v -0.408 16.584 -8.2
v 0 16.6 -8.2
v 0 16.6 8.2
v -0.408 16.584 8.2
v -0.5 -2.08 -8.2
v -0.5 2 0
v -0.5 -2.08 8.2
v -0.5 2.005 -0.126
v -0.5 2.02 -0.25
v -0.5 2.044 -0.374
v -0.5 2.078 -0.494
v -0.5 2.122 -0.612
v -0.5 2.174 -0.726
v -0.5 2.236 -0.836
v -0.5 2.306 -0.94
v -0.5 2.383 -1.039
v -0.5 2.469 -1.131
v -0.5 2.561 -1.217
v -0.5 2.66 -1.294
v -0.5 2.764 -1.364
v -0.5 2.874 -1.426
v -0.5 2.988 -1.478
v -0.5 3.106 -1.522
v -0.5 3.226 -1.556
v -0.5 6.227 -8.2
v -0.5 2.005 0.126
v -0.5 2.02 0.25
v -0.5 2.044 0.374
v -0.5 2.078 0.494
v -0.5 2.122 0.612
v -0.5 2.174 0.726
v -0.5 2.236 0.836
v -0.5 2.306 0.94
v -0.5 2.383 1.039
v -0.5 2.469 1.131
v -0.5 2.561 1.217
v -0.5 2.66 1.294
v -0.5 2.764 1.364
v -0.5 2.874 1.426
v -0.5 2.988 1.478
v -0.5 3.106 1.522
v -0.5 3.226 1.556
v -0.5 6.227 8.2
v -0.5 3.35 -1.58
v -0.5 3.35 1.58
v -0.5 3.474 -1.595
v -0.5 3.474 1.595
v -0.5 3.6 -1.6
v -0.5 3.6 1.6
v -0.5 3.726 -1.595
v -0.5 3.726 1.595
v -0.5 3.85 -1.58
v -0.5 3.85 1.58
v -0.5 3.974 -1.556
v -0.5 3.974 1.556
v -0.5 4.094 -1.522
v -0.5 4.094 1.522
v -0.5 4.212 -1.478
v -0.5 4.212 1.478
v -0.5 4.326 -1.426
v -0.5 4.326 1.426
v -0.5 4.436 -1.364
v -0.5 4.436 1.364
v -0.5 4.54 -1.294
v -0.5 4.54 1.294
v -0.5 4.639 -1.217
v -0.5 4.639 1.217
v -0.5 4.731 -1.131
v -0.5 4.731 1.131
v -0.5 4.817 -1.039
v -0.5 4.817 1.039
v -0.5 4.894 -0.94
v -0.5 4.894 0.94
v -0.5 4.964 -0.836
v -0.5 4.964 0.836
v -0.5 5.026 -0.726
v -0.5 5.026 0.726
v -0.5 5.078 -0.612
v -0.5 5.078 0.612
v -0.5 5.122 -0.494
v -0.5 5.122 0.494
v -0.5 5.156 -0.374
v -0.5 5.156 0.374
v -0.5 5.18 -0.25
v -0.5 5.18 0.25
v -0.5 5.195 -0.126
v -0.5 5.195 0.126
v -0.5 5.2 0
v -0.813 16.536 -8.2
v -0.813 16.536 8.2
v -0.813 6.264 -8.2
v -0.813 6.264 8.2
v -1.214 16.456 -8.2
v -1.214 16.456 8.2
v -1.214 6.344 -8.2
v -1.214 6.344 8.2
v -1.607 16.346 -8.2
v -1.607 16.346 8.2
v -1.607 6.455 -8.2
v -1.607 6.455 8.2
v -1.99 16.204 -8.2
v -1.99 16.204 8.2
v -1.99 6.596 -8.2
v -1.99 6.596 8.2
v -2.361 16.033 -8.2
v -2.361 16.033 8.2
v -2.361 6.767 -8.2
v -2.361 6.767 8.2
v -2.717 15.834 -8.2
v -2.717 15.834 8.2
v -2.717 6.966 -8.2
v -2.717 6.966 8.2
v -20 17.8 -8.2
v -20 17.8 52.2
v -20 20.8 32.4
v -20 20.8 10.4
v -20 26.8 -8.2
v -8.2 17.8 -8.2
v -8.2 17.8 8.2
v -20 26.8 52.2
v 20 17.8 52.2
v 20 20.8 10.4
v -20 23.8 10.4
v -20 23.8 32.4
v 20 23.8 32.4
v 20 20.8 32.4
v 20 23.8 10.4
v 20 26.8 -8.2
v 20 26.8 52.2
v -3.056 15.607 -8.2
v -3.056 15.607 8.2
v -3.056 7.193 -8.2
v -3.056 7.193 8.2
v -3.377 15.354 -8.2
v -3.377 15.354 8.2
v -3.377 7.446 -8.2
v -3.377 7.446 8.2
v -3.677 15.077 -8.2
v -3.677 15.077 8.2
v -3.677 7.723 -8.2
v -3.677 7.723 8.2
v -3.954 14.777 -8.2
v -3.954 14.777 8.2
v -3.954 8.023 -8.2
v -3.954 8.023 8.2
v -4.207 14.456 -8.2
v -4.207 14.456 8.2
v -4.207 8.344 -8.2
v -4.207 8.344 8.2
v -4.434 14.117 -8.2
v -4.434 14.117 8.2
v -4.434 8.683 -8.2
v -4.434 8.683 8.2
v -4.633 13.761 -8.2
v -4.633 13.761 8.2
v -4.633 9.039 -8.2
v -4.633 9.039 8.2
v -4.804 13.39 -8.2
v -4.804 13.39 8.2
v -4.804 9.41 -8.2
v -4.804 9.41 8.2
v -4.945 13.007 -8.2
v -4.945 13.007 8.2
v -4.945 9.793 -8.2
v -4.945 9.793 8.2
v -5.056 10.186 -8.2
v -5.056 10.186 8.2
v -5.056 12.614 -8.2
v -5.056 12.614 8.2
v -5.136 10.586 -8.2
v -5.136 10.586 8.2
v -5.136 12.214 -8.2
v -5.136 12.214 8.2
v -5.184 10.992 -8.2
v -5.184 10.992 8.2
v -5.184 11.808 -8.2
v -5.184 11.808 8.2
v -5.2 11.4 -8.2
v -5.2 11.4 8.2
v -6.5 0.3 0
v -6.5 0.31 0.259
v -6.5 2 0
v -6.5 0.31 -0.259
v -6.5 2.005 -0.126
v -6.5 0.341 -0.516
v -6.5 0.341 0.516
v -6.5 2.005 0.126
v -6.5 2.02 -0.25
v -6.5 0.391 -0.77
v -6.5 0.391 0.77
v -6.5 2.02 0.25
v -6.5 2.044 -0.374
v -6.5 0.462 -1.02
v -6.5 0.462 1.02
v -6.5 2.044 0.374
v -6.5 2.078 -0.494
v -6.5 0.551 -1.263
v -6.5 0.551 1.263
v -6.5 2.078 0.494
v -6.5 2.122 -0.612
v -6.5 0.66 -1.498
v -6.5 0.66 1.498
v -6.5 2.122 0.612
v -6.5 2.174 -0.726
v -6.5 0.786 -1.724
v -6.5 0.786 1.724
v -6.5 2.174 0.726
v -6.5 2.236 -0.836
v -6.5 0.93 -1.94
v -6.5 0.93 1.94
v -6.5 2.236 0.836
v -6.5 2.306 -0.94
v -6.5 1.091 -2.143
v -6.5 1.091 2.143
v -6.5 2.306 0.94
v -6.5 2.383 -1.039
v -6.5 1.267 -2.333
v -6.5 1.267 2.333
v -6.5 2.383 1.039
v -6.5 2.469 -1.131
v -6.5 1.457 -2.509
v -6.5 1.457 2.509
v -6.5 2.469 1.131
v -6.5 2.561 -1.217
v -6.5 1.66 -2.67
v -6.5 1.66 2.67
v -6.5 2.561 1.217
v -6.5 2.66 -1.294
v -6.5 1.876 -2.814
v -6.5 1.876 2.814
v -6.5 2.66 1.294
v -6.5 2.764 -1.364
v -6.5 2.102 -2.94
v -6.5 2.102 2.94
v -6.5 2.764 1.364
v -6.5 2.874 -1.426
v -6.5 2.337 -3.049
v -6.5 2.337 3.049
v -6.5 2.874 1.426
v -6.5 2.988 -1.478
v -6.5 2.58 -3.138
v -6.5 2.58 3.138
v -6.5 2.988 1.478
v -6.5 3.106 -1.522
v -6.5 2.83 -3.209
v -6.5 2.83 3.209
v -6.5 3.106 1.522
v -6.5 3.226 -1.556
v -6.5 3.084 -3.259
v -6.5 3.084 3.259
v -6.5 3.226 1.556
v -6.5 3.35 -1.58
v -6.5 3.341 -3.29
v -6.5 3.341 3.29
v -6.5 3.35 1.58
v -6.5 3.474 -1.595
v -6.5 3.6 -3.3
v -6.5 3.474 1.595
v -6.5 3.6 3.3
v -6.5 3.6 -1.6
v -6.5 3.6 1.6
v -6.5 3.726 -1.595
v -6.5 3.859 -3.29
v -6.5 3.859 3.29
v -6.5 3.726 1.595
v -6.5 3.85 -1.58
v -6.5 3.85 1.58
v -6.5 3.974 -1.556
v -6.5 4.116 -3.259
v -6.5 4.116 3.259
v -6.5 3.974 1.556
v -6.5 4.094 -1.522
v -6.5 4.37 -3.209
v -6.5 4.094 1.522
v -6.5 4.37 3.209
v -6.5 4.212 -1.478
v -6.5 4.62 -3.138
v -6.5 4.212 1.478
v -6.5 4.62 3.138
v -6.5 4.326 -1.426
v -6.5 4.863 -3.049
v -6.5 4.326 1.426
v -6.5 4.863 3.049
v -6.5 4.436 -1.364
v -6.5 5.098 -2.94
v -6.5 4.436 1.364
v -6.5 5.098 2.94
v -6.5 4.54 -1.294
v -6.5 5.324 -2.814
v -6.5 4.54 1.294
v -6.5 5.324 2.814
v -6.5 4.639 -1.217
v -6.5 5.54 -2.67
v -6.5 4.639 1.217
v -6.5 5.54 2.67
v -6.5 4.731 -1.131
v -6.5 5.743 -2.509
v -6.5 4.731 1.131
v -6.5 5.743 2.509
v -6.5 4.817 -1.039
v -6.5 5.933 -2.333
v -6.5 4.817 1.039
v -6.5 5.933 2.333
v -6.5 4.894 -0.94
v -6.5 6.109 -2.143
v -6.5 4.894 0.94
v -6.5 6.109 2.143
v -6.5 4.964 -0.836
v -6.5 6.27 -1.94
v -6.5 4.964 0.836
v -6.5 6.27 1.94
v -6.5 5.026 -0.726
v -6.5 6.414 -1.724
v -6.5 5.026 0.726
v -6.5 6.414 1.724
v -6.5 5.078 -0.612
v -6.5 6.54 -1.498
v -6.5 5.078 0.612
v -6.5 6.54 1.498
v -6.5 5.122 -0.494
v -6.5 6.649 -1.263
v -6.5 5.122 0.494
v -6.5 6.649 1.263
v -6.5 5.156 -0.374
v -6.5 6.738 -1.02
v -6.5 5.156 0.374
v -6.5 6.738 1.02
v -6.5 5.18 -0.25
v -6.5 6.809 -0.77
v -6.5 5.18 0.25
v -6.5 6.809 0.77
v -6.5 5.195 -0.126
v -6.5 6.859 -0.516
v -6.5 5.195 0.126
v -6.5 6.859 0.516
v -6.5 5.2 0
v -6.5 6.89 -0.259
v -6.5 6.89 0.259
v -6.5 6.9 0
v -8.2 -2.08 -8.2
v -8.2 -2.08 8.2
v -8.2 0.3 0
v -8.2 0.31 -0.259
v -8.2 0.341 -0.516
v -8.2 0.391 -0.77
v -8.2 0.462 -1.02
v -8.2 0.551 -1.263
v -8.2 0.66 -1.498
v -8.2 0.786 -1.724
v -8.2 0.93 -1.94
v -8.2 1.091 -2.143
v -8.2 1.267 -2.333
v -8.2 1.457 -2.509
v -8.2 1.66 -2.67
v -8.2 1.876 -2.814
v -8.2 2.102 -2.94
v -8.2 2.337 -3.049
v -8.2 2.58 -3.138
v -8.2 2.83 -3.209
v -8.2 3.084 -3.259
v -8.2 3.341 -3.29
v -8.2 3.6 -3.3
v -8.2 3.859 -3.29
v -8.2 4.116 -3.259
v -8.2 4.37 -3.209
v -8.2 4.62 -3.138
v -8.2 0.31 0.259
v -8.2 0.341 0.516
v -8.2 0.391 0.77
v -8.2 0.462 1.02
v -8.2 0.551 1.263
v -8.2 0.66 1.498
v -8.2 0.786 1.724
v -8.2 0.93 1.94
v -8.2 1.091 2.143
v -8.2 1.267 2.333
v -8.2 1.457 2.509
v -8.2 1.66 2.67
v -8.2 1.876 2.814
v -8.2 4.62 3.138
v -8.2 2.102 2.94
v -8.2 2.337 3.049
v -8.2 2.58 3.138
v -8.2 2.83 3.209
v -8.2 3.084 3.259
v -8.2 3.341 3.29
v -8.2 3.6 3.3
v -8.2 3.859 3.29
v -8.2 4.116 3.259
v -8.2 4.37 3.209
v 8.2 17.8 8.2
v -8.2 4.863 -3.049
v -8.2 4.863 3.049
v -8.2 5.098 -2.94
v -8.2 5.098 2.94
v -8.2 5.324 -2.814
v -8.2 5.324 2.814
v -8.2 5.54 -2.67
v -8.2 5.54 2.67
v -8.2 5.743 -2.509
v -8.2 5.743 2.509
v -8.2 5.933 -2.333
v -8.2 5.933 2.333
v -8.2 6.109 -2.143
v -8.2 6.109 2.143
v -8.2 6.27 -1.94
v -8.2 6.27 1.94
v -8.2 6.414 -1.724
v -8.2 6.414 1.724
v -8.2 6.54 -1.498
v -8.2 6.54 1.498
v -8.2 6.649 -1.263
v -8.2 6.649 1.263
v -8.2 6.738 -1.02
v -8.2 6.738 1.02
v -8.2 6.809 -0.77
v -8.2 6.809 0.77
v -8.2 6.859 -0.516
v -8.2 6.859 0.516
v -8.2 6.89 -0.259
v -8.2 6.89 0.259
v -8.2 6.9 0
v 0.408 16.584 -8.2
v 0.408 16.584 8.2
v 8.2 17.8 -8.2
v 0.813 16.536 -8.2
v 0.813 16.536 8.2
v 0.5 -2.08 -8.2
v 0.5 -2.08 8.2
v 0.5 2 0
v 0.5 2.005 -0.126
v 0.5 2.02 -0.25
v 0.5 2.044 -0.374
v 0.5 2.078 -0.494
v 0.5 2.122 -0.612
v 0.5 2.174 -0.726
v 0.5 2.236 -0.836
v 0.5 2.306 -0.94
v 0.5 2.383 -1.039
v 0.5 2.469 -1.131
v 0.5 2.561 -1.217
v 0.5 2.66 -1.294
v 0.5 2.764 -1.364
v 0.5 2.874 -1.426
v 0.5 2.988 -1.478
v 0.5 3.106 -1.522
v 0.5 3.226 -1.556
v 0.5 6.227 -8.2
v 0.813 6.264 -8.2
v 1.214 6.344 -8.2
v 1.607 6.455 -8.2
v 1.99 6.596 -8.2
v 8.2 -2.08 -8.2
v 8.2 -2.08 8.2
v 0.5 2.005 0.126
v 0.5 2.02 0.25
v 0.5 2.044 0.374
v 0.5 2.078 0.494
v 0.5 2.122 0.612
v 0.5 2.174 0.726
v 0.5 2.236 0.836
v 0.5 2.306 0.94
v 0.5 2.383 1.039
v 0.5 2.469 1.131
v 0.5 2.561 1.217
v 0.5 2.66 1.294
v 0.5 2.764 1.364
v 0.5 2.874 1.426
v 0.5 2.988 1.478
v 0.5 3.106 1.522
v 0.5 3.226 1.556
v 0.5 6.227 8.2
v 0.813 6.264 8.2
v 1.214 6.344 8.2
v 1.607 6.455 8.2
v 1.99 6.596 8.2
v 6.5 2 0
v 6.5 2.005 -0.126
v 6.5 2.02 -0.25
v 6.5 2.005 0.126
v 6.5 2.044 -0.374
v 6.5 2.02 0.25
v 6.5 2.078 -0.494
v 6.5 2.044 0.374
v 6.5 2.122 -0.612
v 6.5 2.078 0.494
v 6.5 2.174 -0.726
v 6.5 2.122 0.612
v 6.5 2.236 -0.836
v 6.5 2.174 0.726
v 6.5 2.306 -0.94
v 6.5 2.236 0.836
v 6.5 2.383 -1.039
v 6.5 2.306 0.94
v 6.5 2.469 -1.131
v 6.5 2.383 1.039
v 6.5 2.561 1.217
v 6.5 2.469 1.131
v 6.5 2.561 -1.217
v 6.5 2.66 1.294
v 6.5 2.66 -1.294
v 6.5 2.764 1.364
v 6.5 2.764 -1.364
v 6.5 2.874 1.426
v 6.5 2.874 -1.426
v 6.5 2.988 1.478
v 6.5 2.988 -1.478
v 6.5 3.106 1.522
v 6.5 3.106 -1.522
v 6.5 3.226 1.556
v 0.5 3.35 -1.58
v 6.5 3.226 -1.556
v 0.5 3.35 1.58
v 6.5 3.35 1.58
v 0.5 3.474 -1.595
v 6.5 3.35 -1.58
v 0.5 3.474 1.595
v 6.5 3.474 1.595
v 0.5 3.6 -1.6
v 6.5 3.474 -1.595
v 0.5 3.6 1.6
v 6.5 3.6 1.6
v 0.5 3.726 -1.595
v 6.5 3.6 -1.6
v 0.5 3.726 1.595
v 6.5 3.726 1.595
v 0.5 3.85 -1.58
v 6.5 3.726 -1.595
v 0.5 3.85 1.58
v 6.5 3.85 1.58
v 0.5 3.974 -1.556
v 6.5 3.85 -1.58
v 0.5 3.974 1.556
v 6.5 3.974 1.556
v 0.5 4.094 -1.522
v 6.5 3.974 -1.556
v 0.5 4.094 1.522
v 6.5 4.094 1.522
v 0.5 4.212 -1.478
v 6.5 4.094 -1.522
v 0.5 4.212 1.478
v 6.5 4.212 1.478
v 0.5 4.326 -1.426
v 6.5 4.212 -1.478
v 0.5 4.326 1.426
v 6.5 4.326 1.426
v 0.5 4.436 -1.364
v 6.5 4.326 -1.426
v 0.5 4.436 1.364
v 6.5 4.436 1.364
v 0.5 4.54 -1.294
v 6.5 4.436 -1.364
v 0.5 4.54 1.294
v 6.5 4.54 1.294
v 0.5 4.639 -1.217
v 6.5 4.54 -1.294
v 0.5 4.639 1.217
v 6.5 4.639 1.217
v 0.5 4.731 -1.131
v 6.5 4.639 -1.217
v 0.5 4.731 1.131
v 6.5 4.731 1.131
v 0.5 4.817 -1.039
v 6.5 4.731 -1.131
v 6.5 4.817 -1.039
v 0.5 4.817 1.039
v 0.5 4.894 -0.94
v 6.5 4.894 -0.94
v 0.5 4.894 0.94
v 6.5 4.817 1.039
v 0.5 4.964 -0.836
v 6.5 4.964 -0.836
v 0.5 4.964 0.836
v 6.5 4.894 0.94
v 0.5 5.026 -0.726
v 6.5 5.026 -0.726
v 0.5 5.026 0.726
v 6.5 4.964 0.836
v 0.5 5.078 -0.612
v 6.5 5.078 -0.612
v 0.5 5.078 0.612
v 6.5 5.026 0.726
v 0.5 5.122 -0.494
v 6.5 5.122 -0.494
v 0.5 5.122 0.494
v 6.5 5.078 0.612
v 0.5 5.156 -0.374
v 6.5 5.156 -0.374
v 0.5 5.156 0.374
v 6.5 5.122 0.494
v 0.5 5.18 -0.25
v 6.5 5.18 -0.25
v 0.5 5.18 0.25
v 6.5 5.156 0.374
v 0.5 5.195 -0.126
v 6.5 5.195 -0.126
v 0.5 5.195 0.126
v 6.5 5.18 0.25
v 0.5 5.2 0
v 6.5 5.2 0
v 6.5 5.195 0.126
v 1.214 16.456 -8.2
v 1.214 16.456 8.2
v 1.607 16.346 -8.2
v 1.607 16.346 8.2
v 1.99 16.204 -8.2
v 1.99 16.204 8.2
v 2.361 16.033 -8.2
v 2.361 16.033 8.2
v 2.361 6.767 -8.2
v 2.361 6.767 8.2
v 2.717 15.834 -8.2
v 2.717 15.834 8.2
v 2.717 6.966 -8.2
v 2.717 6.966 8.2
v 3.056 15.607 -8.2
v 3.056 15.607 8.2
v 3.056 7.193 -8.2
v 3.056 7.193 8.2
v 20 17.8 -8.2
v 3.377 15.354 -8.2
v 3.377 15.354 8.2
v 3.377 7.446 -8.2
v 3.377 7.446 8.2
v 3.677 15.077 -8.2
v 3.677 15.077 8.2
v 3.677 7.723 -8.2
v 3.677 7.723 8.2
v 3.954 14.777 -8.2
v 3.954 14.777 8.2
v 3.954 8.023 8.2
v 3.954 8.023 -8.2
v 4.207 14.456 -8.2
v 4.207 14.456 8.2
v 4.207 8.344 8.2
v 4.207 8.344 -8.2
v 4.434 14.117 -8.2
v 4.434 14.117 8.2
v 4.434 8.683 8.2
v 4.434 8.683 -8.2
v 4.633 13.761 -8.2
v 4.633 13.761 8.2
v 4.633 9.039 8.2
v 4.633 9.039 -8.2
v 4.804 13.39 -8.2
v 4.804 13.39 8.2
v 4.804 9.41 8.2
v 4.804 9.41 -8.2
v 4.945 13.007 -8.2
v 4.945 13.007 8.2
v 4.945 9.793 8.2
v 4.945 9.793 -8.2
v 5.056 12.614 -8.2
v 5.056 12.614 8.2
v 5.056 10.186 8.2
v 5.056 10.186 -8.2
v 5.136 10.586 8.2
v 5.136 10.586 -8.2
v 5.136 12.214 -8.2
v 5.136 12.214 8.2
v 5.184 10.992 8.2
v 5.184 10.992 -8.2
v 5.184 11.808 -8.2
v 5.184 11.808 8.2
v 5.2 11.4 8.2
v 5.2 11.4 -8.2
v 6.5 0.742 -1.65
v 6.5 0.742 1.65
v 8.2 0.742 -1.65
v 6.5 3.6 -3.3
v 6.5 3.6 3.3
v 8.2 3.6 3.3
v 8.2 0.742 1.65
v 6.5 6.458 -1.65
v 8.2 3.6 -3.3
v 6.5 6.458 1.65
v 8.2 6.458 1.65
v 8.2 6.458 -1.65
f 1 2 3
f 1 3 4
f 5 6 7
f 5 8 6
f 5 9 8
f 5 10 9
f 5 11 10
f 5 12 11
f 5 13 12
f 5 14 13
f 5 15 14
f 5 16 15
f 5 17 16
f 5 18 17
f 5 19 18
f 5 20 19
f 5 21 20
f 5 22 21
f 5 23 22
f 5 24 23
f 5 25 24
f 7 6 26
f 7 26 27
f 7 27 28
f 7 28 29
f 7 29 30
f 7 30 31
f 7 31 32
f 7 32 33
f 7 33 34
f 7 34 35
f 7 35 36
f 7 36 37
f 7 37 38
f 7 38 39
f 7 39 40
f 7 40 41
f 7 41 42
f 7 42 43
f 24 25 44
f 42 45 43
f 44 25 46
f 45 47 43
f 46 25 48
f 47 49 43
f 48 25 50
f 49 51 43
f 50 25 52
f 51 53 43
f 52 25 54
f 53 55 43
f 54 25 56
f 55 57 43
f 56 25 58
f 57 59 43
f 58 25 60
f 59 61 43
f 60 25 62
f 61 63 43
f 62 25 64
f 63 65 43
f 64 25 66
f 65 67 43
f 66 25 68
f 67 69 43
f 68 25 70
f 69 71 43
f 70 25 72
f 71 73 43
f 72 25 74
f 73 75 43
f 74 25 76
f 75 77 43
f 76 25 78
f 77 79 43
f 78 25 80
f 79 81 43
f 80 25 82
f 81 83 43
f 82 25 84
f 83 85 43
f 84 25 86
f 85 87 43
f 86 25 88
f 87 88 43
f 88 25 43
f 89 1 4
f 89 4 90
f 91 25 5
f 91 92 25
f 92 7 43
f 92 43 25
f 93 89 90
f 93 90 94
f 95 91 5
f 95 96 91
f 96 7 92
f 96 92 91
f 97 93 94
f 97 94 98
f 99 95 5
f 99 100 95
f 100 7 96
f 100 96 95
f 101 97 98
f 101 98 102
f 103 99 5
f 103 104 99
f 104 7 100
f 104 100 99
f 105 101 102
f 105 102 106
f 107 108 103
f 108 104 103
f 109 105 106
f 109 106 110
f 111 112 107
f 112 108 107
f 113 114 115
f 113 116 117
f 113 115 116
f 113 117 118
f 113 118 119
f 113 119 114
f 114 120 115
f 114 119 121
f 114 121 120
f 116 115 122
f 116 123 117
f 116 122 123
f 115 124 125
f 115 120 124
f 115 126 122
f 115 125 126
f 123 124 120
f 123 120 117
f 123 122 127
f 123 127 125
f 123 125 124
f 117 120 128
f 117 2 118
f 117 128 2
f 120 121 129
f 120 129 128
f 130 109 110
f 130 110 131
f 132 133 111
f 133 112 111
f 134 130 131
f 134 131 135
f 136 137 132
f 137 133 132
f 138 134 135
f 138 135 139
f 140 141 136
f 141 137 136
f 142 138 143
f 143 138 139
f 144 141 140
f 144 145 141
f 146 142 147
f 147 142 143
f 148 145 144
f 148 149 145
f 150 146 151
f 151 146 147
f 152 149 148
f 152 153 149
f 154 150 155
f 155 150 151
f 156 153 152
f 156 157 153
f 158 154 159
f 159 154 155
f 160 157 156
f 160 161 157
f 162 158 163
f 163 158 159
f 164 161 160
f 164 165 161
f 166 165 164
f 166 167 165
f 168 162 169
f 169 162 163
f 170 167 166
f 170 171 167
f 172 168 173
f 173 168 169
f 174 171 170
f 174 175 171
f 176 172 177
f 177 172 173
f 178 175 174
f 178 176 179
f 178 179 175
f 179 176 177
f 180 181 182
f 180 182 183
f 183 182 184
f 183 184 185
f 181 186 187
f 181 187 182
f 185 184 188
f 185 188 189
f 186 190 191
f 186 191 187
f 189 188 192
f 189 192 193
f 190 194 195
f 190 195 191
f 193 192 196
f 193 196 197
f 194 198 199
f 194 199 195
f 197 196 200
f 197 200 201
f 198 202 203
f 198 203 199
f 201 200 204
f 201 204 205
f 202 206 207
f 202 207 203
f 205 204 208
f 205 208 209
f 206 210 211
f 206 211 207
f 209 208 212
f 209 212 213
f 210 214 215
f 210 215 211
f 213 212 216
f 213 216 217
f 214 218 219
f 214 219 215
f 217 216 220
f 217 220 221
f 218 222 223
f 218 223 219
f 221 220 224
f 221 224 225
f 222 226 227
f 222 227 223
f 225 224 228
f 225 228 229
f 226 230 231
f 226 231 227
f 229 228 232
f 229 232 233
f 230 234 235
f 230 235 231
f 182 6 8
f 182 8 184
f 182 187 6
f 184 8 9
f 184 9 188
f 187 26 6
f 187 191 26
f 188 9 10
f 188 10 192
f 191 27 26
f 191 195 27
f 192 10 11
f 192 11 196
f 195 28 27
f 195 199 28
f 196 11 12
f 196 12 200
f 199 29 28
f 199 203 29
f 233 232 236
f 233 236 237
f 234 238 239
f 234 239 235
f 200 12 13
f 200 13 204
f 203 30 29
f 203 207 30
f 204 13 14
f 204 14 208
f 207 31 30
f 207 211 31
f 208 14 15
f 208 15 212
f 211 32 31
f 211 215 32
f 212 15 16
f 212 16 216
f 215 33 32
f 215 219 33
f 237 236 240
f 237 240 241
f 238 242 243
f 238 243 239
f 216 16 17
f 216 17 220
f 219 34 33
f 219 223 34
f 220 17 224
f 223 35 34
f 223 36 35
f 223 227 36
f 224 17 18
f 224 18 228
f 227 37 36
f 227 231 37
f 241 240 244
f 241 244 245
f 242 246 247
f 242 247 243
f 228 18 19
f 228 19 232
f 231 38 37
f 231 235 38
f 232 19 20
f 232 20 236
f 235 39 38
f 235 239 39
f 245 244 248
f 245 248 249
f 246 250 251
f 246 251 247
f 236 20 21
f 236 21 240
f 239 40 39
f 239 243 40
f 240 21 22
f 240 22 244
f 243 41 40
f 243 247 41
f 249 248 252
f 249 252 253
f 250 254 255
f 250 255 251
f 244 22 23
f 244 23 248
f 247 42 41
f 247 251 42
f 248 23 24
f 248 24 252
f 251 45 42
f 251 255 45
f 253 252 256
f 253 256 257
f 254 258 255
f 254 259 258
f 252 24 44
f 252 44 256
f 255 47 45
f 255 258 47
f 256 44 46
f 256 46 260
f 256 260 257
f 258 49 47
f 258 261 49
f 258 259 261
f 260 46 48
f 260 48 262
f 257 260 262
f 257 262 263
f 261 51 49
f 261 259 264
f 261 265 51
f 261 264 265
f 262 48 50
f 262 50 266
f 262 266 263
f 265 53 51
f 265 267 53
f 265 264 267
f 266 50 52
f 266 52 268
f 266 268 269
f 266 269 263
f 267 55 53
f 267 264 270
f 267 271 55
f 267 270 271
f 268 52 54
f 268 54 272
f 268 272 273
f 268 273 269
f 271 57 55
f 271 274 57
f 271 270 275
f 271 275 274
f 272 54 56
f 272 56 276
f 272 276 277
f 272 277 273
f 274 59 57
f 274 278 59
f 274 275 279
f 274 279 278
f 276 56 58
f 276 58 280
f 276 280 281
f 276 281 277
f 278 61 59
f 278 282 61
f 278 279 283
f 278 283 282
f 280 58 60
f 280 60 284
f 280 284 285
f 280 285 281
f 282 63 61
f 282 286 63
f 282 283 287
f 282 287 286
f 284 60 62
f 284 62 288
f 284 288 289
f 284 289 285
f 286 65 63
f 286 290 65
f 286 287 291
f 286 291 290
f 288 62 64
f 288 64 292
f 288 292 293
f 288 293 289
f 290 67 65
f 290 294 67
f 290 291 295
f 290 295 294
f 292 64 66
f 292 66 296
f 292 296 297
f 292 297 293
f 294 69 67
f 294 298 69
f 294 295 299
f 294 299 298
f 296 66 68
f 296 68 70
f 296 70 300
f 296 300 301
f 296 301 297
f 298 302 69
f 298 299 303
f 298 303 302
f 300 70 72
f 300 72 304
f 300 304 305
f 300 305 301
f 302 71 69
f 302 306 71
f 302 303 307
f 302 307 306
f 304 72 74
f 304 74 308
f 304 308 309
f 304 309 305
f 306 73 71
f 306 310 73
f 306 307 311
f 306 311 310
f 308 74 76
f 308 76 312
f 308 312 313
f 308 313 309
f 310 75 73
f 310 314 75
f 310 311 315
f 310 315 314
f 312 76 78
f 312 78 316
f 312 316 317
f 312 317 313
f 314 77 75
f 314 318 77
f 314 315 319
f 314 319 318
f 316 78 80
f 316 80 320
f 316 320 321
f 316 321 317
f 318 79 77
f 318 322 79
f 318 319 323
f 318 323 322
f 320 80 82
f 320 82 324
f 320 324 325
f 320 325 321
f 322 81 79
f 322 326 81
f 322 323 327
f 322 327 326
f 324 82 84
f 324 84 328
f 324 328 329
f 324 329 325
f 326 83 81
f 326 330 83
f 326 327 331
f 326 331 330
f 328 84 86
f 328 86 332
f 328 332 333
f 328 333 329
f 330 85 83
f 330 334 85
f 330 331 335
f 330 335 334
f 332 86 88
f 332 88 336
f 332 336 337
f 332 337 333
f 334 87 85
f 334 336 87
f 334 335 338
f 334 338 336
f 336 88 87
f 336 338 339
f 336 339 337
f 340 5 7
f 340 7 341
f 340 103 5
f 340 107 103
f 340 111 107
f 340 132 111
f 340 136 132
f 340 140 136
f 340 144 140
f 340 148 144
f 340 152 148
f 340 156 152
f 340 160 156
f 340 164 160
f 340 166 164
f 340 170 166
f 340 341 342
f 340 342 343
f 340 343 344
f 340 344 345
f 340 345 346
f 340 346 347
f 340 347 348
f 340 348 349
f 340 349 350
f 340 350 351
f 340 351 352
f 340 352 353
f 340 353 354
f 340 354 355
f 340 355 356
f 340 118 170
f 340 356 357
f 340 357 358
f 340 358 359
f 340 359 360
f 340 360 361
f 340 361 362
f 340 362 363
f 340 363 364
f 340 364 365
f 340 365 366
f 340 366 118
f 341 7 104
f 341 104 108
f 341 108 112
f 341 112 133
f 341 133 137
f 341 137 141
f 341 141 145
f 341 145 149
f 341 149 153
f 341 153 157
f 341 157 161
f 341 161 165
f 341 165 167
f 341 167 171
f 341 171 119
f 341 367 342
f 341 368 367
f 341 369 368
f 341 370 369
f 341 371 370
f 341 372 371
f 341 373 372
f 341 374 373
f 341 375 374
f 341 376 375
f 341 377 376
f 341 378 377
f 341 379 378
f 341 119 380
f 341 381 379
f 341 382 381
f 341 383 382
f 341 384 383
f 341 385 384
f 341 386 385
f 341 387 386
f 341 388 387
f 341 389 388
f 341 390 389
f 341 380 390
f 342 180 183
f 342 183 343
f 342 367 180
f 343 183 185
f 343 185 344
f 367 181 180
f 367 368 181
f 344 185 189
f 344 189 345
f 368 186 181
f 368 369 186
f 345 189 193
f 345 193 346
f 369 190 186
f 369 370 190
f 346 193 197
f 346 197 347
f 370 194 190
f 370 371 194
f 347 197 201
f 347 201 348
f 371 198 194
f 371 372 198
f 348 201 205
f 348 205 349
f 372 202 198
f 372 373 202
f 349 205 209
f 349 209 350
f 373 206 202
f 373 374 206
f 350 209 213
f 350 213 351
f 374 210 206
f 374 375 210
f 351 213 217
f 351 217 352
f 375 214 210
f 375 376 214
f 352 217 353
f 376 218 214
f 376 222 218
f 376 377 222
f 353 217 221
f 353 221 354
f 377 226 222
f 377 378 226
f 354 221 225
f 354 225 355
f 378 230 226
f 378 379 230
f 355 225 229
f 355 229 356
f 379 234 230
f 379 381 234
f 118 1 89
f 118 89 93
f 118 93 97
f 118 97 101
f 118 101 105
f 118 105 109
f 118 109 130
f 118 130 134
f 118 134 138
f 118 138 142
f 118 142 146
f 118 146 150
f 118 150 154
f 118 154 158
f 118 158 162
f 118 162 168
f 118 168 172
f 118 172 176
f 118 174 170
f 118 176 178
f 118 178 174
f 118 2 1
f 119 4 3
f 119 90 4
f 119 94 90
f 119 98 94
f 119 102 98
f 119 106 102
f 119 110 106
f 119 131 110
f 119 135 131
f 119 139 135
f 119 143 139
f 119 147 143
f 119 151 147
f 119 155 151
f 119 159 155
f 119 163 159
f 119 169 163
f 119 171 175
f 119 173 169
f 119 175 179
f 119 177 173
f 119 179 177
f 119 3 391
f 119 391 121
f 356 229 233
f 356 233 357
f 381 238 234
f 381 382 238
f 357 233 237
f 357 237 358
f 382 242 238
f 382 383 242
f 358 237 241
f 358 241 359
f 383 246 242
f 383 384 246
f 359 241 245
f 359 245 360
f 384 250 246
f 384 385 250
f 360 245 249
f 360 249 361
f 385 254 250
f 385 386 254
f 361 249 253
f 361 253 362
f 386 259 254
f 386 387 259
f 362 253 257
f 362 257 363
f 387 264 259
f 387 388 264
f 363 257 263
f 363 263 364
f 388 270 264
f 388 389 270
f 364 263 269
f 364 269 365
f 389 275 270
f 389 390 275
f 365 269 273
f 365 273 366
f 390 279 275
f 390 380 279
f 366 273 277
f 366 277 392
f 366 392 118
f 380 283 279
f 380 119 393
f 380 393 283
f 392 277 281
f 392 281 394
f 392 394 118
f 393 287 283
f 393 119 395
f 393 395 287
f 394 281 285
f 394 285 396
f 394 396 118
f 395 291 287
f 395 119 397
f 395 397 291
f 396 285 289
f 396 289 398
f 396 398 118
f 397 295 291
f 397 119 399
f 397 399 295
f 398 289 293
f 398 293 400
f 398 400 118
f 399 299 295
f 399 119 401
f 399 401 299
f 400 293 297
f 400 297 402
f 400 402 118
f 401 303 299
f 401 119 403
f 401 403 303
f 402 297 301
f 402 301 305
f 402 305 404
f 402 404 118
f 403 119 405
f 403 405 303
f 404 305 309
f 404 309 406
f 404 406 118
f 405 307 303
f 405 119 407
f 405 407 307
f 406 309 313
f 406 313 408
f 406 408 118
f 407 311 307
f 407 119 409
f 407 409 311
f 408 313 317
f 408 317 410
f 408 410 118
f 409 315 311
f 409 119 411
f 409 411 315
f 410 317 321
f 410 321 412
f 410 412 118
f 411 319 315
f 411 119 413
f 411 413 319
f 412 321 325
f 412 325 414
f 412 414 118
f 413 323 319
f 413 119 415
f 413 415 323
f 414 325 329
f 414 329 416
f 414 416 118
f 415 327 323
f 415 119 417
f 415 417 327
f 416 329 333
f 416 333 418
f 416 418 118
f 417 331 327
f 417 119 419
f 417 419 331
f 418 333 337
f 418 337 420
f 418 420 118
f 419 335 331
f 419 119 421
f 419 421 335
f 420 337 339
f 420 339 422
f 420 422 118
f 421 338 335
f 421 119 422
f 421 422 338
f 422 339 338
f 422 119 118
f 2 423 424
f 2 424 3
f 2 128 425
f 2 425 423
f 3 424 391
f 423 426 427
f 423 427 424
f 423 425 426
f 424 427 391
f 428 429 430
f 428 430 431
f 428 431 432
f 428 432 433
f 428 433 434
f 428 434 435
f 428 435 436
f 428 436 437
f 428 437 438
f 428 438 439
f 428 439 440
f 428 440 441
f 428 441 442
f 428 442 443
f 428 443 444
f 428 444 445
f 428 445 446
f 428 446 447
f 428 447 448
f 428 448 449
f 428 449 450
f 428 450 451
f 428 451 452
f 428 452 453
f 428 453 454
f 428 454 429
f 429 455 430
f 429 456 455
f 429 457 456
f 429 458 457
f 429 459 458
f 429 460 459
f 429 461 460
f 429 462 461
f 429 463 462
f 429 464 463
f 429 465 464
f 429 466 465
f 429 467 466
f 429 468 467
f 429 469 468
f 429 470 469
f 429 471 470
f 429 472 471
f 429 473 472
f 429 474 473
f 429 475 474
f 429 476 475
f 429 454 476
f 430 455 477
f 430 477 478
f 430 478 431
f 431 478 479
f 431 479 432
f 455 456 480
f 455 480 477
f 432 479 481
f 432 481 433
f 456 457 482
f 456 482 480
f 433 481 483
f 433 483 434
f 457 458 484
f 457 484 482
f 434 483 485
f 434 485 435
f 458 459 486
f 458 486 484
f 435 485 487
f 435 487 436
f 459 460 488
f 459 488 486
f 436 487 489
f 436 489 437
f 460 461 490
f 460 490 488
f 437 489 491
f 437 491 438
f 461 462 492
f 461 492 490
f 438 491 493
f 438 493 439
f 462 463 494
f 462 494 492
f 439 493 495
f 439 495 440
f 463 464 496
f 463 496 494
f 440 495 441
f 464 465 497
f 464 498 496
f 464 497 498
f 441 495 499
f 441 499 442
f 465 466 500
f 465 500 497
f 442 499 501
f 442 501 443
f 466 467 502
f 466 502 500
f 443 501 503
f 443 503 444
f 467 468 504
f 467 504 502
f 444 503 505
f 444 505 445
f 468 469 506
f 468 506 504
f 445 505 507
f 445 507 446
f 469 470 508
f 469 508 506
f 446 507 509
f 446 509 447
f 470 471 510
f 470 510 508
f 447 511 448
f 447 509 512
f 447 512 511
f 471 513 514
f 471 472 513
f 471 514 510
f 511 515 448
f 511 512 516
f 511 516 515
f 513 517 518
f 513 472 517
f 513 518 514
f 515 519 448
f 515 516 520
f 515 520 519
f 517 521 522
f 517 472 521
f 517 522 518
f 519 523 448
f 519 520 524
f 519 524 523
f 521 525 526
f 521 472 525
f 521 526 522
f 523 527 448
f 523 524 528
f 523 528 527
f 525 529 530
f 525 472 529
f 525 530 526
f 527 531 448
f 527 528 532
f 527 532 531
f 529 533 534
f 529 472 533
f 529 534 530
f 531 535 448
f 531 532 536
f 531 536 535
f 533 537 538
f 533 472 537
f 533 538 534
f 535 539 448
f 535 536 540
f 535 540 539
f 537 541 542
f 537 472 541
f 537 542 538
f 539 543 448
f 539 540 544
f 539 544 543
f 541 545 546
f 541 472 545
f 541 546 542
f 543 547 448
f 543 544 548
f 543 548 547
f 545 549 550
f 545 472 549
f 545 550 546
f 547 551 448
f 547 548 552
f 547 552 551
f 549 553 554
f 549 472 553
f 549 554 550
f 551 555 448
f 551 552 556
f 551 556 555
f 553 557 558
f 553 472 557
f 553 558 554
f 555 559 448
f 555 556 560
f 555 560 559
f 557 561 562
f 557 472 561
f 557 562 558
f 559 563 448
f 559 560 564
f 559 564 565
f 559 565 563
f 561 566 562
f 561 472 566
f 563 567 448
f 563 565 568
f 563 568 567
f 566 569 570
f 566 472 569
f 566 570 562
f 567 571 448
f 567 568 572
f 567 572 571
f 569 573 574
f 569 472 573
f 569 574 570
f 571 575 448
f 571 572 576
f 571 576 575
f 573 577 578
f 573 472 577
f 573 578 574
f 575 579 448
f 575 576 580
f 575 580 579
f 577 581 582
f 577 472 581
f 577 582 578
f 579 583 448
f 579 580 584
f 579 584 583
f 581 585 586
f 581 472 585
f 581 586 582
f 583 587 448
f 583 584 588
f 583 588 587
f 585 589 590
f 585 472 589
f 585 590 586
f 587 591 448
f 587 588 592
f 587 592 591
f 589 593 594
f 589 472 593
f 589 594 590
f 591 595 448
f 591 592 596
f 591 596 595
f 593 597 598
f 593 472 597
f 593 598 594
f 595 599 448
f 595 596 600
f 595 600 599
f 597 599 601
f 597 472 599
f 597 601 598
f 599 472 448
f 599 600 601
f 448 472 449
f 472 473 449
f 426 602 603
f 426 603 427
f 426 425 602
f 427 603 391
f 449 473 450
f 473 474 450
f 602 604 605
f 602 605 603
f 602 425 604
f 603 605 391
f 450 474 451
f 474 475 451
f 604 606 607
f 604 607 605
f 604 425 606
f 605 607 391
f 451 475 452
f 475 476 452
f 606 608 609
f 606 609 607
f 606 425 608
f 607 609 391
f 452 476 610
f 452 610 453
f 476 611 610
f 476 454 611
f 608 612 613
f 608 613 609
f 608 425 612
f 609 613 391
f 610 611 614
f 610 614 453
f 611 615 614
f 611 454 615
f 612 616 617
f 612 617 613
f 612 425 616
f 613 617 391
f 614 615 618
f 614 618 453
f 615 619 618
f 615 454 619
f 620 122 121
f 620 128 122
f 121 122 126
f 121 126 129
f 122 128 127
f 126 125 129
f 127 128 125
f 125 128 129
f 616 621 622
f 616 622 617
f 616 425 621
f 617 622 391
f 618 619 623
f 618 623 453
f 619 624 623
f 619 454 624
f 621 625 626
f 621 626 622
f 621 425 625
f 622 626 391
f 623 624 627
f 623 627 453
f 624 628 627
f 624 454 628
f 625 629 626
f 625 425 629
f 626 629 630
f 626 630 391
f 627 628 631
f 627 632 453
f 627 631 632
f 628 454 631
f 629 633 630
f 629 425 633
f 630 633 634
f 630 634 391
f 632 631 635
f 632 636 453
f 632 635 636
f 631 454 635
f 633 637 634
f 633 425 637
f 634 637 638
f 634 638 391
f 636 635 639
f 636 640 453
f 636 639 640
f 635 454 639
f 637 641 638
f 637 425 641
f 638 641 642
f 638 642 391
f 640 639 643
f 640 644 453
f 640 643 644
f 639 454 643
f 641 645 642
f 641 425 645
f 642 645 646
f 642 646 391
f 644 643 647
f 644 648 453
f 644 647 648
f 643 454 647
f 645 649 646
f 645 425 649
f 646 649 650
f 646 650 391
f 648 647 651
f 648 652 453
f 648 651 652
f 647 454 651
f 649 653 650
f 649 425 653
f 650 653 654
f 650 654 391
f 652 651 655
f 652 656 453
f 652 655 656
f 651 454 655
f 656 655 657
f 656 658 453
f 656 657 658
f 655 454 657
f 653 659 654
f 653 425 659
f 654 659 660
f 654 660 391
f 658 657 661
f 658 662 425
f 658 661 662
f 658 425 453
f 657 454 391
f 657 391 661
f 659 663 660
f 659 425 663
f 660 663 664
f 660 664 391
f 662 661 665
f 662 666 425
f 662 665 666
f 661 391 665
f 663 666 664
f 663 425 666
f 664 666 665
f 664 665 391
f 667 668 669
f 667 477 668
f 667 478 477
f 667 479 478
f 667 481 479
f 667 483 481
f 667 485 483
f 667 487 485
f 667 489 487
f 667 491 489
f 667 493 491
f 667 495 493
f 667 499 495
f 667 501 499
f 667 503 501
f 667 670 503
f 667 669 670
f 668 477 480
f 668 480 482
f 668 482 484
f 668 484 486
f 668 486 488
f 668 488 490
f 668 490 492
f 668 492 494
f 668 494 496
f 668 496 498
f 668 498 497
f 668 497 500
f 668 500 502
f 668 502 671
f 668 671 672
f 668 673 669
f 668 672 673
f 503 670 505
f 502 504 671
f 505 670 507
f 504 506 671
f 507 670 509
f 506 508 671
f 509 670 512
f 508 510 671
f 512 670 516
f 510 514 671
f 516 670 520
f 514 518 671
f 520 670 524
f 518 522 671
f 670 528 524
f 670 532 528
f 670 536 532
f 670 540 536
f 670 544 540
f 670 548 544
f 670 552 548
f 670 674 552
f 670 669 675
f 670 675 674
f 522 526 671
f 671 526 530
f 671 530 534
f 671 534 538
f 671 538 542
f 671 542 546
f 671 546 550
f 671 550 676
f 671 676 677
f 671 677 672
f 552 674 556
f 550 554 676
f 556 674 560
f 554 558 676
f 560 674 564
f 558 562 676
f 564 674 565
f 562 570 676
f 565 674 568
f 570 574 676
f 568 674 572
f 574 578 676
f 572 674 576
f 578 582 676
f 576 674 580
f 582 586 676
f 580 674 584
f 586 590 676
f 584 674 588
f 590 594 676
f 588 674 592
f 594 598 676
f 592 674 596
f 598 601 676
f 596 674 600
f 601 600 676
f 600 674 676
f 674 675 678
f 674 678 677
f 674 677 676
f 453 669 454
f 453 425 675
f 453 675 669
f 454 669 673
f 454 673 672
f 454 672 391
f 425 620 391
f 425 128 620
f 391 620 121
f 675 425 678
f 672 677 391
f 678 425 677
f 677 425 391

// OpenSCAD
// file: ../888_1000.scad
/*
// Nastavení zobrazení
$vpr = [338, 0, 357];
$vpt = [180, 25, -18];
$vpd = 1280;
*/
//improving rendering speed.
draft = true;   // sets rendering quality to draft.
$fs = draft ? 5 : 0.5;
$fa = 10;

/*
TODO: 

Přední díl obsahuje převis ve směru vybrání pro držák motoru. (U horního zámku)
Otvory pro šrouby v předním dílu jsou oválné, protože nejsou kolmo k rovině modelu.


*/




//vnitřní kapka
module hollowing_skeleton(shell_thickness = hull_wall_thickness, draft)
{

    beta = 90 - trailing_edge_angle(naca = hull_airfoil_thickness); // calculate the angle of trailing edge
    trailing_wall= 1/(cos(beta)); //calculate lenght of wall cut relative to wall thickness 

    intersection () {
    resize([hull_drop_length - shell_thickness - trailing_wall* shell_thickness, (hull_drop_length*hull_airfoil_thickness/100) - 2*shell_thickness, (hull_drop_length*hull_airfoil_thickness/100) - 2*shell_thickness], auto=true)
            rotate ([0,90,0])           
            rotate_extrude($fn = draft ? 50 : 100)
                rotate([0,0,90])
                    difference()
                    {
                      polygon(points = airfoil_data(naca=hull_airfoil_thickness, L = hull_drop_length, N=draft ? 50 : 200)); 
                      square(hull_drop_length); 
                    }
                    
      translate([0,0,hull_corner_radius])
        minkowski(){                   
            translate ([0,- hull_y_size , - hull_z_size/2 + shell_thickness])
                cube ([hull_x_size,2*hull_y_size - shell_thickness, hull_z_size - 2*shell_thickness - 2*hull_corner_radius]);
                rotate ([0,90,0])
                    cylinder (h = 1, r = hull_corner_radius, $fn = draft ? 50 : 100);                   
          }
                            
    }
}

module hollowing_skeleton_hem(ribbon_width, draft)
{

    beta = 90 - trailing_edge_angle(naca = hull_airfoil_thickness); // calculate the angle of trailing edge
    trailing_wall= 1/(cos(beta)); //calculate lenght of wall cut relative to wall thickness 

    intersection () {
    resize([hull_drop_length - ribbon_width - trailing_wall* ribbon_width, (hull_drop_length*hull_airfoil_thickness/100) - 2*ribbon_width, (hull_drop_length*hull_airfoil_thickness/100) - 2*ribbon_width], auto=true)
            rotate ([0,90,0])           
            rotate_extrude($fn = draft ? 50 : 100)
                rotate([0,0,90])
                    difference()
                    {
                      polygon(points = airfoil_data(naca=hull_airfoil_thickness, L = hull_drop_length, N=draft ? 50 : 200)); 
                      square(hull_drop_length); 
                    }
                    
      translate([0,0,hull_corner_radius])
        minkowski(){                   
            translate ([0,- hull_y_size, - hull_z_size/2 + ribbon_width])
                cube ([hull_x_size,2*hull_y_size - ribbon_width, hull_z_size - 2*ribbon_width - 2*hull_corner_radius]);
                rotate ([0,90,0])
                    cylinder (h = 1, r = hull_corner_radius, $fn = draft ? 50 : 100);                   
          }
                            
    }
}




//celá kapka
module drop(draft = true)
{

    beta = 90 - trailing_edge_angle(naca = hull_airfoil_thickness); // calculate the angle of trailing edge
    trailing_wall= 1/(cos(beta)); //calculate lenght of wall cut relative to wall thickness 

	intersection () {
    	rotate ([0,90,0])           
        	rotate_extrude($fn = draft ? 50 : 100)
                    rotate([0,0,90])
                        difference()
                        {
	                        polygon(points = airfoil_data(naca=hull_airfoil_thickness, L =hull_drop_length , N=draft ? 50 : 200)); 
    	                    square(hull_drop_length); 
        	            }
            		
        translate([0,0,hull_corner_radius])
          	minkowski(){                   
             	translate ([0,-hull_y_size,-hull_z_size/2])
             			cube ([hull_x_size, 2*hull_y_size,hull_z_size-2*hull_corner_radius]);
             	  	rotate ([0,90,0])
                 		cylinder (h = 1, r = hull_corner_radius, $fn = draft ? 50 : 100);                   
		    }
		    
	}
}


//základní kapka
module drop_skin(draft){

	difference(){
			drop();
		translate([hull_wall_thickness,0,0])
			hollowing_skeleton();
	}

}




drop_skin();














use <./lib/naca4.scad>
include <../Parameters.scad>
// file: ../../Parameters.scad
//Main tube diameter - hole [mm]
main_tube_outer_diameter = 25.4;
main_tube_inner_diameter = 23.5;

//Tube for undercarriage - hole [mm]
tube_for_undercarriage_outer_diameter = 10.6;
tube_for_undercarriage_inner_diameter = 6;
global_clearance = 0.5;


//umístění podvozkových trubek

second_undercarriage_hole = main_tube_outer_diameter*2 + main_tube_outer_diameter/5 + main_tube_outer_diameter/2 + 170 + 160;

// Parameters of cube couplings
coupling_wall_thickness = main_tube_outer_diameter/5;  //width of coupling walls 
thickness_between_tubes = main_tube_outer_diameter/10;    // minimum distance between tubes in couplings

coupling_wall_thickness_undercarriage = tube_for_undercarriage_outer_diameter/3;
thickness_between_tubes_undercarriage = tube_for_undercarriage_outer_diameter/10;

//Screw diameter and nut for M4 [mm]
M4_screw_diameter=4.5;
Nut_height_M4 = 3.2;
Nut_diameter_M4 = 7.86;


//Screw diameter and nut for M3 [mm]
M3_screw_diameter = 3.2;
Nut_height_M3 = 1.7;	
Nut_diameter_M3 = 6.6; 


//The tube for help
Help_main_tube_outer = 25;
Help_main_tube_inner = 23; 
Help_tube_for_undercarriage_outer = 10;
Help_tube_for_undercarriage_inner = 5;


//main hull parameters

hull_drop_length = 580;
hull_wall_thickness = 0.8;
hull_y_size = 120;
hull_z_size = 150;
hull_x_size = 580;
hull_corner_radius = 4;
hull_airfoil_thickness= 35;  // thickness of drop generating airfoil in percent of lenght.
hull_scale_x = 1;
hull_scale_y = 1.5;
hull_scale_z = 1.5;

main_pilon_position = 170+68;
cover_pilon_position = 180;
height_of_vertical_tube = 275; //278mm je změřená délka trubky. 

ribbon_width = 5; // šířka vyztužovacích lemů. 

// šířka otvoru v přední části kapoty pro držák motoru.
width_of_engine_holder = 63;

//Top Cover Division - dělení horního krytu pro tisk
top_cover_division = [0, 50, 150, 280, 410, hull_x_size]; // upraveny seznam tak, aby deleni začinalo od nuly, což umožňí úplně automatické rozdělení.

//Bottom Cover Division - dělení dolního krytu pro tisk
bottom_cover_division = [0,100,250,365, 470, hull_x_size];
// zkrácená část pro payload pro testovací tisk
//bottom_cover_division = [0,200,250,365, 470, hull_x_size];

//Base Divison - dělení podložky
base_division = [0,140,280,410, hull_x_size];

//Cover pilon division - na výšku (v ose Z)
cover_pilon_division = [0,170,height_of_vertical_tube + main_tube_outer_diameter + coupling_wall_thickness];

//pozice šroubů
	//horní kryt
top_screw_position = [0, (top_cover_division[0] + top_cover_division[1])/4, (top_cover_division[2] - top_cover_division[1])/2 + top_cover_division[1], (top_cover_division[3] - top_cover_division[2])/2 + top_cover_division[2],(top_cover_division[4] - top_cover_division[3])/2 + top_cover_division[3],(top_cover_division[5] - top_cover_division[4])/2 + top_cover_division[4] - 20];
	//spodní kryt
bottom_screw_position = [0,(bottom_cover_division[0] + bottom_cover_division[1])/15 + 5, bottom_cover_division[1]/1.1, + bottom_cover_division[3], bottom_cover_division[3] + bottom_cover_division[1]/2, bottom_cover_division[4] - 6*global_clearance, bottom_cover_division[4] + bottom_cover_division[1]/2.5];




//šířka zámků
lock_width = 10;

//délka zámků
lock_length = 3;


//accumulator
//základní rozměry akumulátoru
width_of_accumulator = 129.4;//45+1;
depth_of_accumulator = 40.61;
height_of_accumulator = 43.65;
//Zapuštění akumulátoru
sink_of_accumulator = 5; //main_tube_outer_diameter/5 - Nut_height_M3*1.5;

//tloušťka hrany spojky
accumulator_holder_width = 18; 
accumulator_holder_thickness = 10; 

//posunutí akumálátoru na podložce
move_of_accumulator = 165;   // pozice akumulátoru (ovlivňuje těžiště)


////////////////
// Senzory
///////////////////

//opticalFlow
    width_optical_flow_senzor = 45.5;
    depth_optical_flow_senzor = 6;
    height_optical_flow_senzor = 35;
    sink_of_optical_flow_senzor = depth_optical_flow_senzor - 5; 
    M3_optical_flow_senzor_Z = 30.4;
    M3_optical_flow_senzor_X = 24;
    M3_optical_flow_senzor_Z_alone = 9.1;
    M3_optical_flow_senzor_X_alone = 16.7;
// file: ../lib/naca4.scad
// Naca4.scad - library for parametric airfoils of 4 digit NACA series
// Code: Rudolf Huttary, Berlin 
// June 2015
// commercial use prohibited


// general use: for more examples refer to sampler.scad
// naca = naca digits or 3el vector  (default = 12 or [0, 0, .12])
// L    = chord length [mm]      (default= 100)
// N    = # sample points        (default= 81)
// h    = height [mm]            (default= 1)
// open = close at the thin end? (default = true)
// two equivalent example calls
 airfoil(naca = 2408, L = 60, N=1001, h = 30, open = false); 
// airfoil(naca = [.2, .4, .32], L = 60, N=1001, h = 30, open = false); 

module help()
{
  echo(str("\n\nList of signatures in lib:\n=================\n", 
  "module airfoil(naca=2412, L = 100, N = 81, h = 1, open = false) - renders airfoil object\n", 
  "module airfoil(naca=[.2, .4, .12], L = 100, N = 81, h = 1, open = false) - renders airfoil object using percentage for camber,  camber distance and thicknes\n", 
  "function airfoil_data(naca=12, L = 100, N = 81, open = false)\n",
  "=================\n")); 
}

help(); 
// this is the object
module airfoil(naca=12, L = 100, N = 81, h = 1, open = false)
{
  linear_extrude(height = h)
  polygon(points = airfoil_data(naca, L, N, open)); 
}

module hollow_airfoil(lnaca=12, L = 100, N = 81, h = 1, open = false, wall_thickness = 1)
{
    if (open){
        linear_extrude(height = h)

        if (wall_thickness>0){
            difference(){
                polygon(points = airfoil_data(naca, L, N, false));
                offset(delta = - wall_thickness, chamfer = false) polygon(points = airfoil_data(naca, L, N, open = false));
            }
        }
        else{
            difference(){
                offset(delta = - wall_thickness, chamfer = false) polygon(points = airfoil_data(naca, L, N, open = false));
                polygon(points = airfoil_data(naca, L, N, false));
            }
        }
    }
    else{

        linear_extrude(height = abs(wall_thickness))
            polygon(points = airfoil_data(naca, L, N, false)); 

        linear_extrude(height = h)
            difference(){
                polygon(points = airfoil_data(naca, L, N, open));
                offset(delta = - wall_thickness) polygon(points = airfoil_data(naca, L, N, open = false));
            }

        translate([0,0, h - wall_thickness])
            linear_extrude(height = abs(wall_thickness))
                polygon(points = airfoil_data(naca, L, N, false)); 

    }
}


// this is the main function providing the airfoil data
function airfoil_data(naca=12, L = 100, N = 81, open = false) = 
  let(Na = len(naca)!=3?NACA(naca):naca)
  let(A = [.2969, -0.126, -.3516, .2843, open?-0.1015:-0.1036])
  [for (b=[-180:360/(N):179.99]) 
    let (x = (1-cos(b))/2)  
    let(yt = sign(b)*Na[2]/.2*(A*[sqrt(x), x, x*x, x*x*x, x*x*x*x])) 
    Na[0]==0?L*[x, yt]:L*camber(x, yt, Na[0], Na[1], sign(b))];  


function trailing_edge_angle(naca=12, open = false) = 
  let(Na = len(naca)!=3?NACA(naca):naca)
  let(A = [.2969, -0.126, -.3516, .2843, open?-0.1015:-0.1036])
  let (x =0.999)  // set x near to airfoil trailing edge
  let(yt = Na[2]/.2*(A*[sqrt(x), x, x*x, x*x*x, x*x*x*x])) // calculate distance from x-axis at previously set position
  atan2(yt,1-x);  // calculate angle of triangle between end of airfoil. The triange height corresponds to previously calculated distance from x-axis

function surface_angle(x = 0.5, naca=12, open = false) = 
  let(Na = len(naca)!=3?NACA(naca):naca)
  let(A = [0.2969, -0.126, -0.3516, 0.2843, open?-0.1015:-0.1036])
  let(dy = Na[2]/0.2*(A*[(1/2)*(1/sqrt(x)), 1, 2*x, 3*x*x, 4*x*x*x])) // calculate derivative of airfoil function at the x point
  atan(dy);  // calculate  the angle from function derivative

function surface_distance(x = 0.5, naca=12, open = false) = 
  let(Na = len(naca)!=3?NACA(naca):naca)
  let(A = [0.2969, -0.126, -0.3516, 0.2843, open?-0.1015:-0.1036])
  Na[2]/.2*(A*[sqrt(x), x, x*x, x*x*x, x*x*x*x]); // calculate distance from x-axis at previously set position

// helper functions
function NACA(naca) = 
  let (M = floor(naca/1000))
  let (P = floor((naca-M*1000)/100)) 
  [M/100, P/10, floor(naca-M*1000-P*100)/100];  

function camber(x, y, M, P, upper) = 
  let(yc = (x<P)?M/P/P*(2*P*x-x*x): M/(1-P)/(1-P)*(1 - 2*P + 2*P*x -x*x))
  let(dy = (x<P)?2*M/P/P*(P-x):2*M/(1-P)/(1-P)*(P-x))
  let(th = atan(dy))
  [upper ? x - y*sin(th):x + y*sin(th), upper ? yc + y*cos(th):yc - y*cos(th)];
// file: ../888_1036_single.scad
// patka pro pridelani predni tyce pylonu k nosniku
include <../parameters.scad>
use <888_1004.scad>

$fn = 80;
draft = $preview;


strap_width = 22;
strap_thickness = 3;


module 888_1036_single(){


    difference(){
        union(){
            hull(){
                //cylinder(d = tube_for_undercarriage_outer_diameter + 2* beam_min_wall, h = tube_for_undercarriage_outer_diameter + 2*beam_min_wall, center = true);
                height = tube_for_undercarriage_outer_diameter+2.5*beam_min_wall*2;
                translate([0, height*0.5 - tube_for_undercarriage_outer_diameter*0.2, 0])
                    cube([tube_for_undercarriage_outer_diameter+2*beam_min_wall, height, tube_for_undercarriage_outer_diameter + 2*beam_min_wall], center = true);
            }

            // plochá část s otvorem pro pásku
            translate([strap_width, tube_for_undercarriage_outer_diameter + tube_for_undercarriage_outer_diameter + beam_min_wall/2, 0])
                cube([strap_width*2 + tube_for_undercarriage_outer_diameter+2*beam_min_wall, strap_thickness*3, accumulator_holder_width], center = true);
        }

        // otvor pro pásku
        translate([strap_width/2 + tube_for_undercarriage_outer_diameter, tube_for_undercarriage_outer_diameter + tube_for_undercarriage_outer_diameter + beam_min_wall/2, 0])
            cube([strap_width, strap_thickness, accumulator_holder_width+1], center = true);


        translate([0, tube_for_undercarriage_outer_diameter + beam_vertical_space_between_pipes, 0])
            rotate([0, 90, 0])
                cylinder(d = tube_for_undercarriage_outer_diameter, h = tube_for_undercarriage_outer_diameter+2*beam_min_wall + 1, center = true);

        // otvory pro srouby
        translate([0, tube_for_undercarriage_outer_diameter*0.25 + beam_vertical_space_between_pipes , 0]){
            cylinder(d = M3_screw_diameter, h = 20, center = true);

            translate([0, 0, 6.5])
                cylinder(d = M3_nut_diameter, h = 20);

            translate([0, 0, -20-6.5])
                cylinder(d = M3_nut_diameter, h = 20, $fn = 6);
        }

        cube([30, 20, 1], center = true);

    }
}




888_1036_single();
// main file
include <../../parameters.scad>
draft = $preview;
$fn = 30;
use<../888_1036_single.scad>

rotate([0, -90, 0]) 888_1036_single();
